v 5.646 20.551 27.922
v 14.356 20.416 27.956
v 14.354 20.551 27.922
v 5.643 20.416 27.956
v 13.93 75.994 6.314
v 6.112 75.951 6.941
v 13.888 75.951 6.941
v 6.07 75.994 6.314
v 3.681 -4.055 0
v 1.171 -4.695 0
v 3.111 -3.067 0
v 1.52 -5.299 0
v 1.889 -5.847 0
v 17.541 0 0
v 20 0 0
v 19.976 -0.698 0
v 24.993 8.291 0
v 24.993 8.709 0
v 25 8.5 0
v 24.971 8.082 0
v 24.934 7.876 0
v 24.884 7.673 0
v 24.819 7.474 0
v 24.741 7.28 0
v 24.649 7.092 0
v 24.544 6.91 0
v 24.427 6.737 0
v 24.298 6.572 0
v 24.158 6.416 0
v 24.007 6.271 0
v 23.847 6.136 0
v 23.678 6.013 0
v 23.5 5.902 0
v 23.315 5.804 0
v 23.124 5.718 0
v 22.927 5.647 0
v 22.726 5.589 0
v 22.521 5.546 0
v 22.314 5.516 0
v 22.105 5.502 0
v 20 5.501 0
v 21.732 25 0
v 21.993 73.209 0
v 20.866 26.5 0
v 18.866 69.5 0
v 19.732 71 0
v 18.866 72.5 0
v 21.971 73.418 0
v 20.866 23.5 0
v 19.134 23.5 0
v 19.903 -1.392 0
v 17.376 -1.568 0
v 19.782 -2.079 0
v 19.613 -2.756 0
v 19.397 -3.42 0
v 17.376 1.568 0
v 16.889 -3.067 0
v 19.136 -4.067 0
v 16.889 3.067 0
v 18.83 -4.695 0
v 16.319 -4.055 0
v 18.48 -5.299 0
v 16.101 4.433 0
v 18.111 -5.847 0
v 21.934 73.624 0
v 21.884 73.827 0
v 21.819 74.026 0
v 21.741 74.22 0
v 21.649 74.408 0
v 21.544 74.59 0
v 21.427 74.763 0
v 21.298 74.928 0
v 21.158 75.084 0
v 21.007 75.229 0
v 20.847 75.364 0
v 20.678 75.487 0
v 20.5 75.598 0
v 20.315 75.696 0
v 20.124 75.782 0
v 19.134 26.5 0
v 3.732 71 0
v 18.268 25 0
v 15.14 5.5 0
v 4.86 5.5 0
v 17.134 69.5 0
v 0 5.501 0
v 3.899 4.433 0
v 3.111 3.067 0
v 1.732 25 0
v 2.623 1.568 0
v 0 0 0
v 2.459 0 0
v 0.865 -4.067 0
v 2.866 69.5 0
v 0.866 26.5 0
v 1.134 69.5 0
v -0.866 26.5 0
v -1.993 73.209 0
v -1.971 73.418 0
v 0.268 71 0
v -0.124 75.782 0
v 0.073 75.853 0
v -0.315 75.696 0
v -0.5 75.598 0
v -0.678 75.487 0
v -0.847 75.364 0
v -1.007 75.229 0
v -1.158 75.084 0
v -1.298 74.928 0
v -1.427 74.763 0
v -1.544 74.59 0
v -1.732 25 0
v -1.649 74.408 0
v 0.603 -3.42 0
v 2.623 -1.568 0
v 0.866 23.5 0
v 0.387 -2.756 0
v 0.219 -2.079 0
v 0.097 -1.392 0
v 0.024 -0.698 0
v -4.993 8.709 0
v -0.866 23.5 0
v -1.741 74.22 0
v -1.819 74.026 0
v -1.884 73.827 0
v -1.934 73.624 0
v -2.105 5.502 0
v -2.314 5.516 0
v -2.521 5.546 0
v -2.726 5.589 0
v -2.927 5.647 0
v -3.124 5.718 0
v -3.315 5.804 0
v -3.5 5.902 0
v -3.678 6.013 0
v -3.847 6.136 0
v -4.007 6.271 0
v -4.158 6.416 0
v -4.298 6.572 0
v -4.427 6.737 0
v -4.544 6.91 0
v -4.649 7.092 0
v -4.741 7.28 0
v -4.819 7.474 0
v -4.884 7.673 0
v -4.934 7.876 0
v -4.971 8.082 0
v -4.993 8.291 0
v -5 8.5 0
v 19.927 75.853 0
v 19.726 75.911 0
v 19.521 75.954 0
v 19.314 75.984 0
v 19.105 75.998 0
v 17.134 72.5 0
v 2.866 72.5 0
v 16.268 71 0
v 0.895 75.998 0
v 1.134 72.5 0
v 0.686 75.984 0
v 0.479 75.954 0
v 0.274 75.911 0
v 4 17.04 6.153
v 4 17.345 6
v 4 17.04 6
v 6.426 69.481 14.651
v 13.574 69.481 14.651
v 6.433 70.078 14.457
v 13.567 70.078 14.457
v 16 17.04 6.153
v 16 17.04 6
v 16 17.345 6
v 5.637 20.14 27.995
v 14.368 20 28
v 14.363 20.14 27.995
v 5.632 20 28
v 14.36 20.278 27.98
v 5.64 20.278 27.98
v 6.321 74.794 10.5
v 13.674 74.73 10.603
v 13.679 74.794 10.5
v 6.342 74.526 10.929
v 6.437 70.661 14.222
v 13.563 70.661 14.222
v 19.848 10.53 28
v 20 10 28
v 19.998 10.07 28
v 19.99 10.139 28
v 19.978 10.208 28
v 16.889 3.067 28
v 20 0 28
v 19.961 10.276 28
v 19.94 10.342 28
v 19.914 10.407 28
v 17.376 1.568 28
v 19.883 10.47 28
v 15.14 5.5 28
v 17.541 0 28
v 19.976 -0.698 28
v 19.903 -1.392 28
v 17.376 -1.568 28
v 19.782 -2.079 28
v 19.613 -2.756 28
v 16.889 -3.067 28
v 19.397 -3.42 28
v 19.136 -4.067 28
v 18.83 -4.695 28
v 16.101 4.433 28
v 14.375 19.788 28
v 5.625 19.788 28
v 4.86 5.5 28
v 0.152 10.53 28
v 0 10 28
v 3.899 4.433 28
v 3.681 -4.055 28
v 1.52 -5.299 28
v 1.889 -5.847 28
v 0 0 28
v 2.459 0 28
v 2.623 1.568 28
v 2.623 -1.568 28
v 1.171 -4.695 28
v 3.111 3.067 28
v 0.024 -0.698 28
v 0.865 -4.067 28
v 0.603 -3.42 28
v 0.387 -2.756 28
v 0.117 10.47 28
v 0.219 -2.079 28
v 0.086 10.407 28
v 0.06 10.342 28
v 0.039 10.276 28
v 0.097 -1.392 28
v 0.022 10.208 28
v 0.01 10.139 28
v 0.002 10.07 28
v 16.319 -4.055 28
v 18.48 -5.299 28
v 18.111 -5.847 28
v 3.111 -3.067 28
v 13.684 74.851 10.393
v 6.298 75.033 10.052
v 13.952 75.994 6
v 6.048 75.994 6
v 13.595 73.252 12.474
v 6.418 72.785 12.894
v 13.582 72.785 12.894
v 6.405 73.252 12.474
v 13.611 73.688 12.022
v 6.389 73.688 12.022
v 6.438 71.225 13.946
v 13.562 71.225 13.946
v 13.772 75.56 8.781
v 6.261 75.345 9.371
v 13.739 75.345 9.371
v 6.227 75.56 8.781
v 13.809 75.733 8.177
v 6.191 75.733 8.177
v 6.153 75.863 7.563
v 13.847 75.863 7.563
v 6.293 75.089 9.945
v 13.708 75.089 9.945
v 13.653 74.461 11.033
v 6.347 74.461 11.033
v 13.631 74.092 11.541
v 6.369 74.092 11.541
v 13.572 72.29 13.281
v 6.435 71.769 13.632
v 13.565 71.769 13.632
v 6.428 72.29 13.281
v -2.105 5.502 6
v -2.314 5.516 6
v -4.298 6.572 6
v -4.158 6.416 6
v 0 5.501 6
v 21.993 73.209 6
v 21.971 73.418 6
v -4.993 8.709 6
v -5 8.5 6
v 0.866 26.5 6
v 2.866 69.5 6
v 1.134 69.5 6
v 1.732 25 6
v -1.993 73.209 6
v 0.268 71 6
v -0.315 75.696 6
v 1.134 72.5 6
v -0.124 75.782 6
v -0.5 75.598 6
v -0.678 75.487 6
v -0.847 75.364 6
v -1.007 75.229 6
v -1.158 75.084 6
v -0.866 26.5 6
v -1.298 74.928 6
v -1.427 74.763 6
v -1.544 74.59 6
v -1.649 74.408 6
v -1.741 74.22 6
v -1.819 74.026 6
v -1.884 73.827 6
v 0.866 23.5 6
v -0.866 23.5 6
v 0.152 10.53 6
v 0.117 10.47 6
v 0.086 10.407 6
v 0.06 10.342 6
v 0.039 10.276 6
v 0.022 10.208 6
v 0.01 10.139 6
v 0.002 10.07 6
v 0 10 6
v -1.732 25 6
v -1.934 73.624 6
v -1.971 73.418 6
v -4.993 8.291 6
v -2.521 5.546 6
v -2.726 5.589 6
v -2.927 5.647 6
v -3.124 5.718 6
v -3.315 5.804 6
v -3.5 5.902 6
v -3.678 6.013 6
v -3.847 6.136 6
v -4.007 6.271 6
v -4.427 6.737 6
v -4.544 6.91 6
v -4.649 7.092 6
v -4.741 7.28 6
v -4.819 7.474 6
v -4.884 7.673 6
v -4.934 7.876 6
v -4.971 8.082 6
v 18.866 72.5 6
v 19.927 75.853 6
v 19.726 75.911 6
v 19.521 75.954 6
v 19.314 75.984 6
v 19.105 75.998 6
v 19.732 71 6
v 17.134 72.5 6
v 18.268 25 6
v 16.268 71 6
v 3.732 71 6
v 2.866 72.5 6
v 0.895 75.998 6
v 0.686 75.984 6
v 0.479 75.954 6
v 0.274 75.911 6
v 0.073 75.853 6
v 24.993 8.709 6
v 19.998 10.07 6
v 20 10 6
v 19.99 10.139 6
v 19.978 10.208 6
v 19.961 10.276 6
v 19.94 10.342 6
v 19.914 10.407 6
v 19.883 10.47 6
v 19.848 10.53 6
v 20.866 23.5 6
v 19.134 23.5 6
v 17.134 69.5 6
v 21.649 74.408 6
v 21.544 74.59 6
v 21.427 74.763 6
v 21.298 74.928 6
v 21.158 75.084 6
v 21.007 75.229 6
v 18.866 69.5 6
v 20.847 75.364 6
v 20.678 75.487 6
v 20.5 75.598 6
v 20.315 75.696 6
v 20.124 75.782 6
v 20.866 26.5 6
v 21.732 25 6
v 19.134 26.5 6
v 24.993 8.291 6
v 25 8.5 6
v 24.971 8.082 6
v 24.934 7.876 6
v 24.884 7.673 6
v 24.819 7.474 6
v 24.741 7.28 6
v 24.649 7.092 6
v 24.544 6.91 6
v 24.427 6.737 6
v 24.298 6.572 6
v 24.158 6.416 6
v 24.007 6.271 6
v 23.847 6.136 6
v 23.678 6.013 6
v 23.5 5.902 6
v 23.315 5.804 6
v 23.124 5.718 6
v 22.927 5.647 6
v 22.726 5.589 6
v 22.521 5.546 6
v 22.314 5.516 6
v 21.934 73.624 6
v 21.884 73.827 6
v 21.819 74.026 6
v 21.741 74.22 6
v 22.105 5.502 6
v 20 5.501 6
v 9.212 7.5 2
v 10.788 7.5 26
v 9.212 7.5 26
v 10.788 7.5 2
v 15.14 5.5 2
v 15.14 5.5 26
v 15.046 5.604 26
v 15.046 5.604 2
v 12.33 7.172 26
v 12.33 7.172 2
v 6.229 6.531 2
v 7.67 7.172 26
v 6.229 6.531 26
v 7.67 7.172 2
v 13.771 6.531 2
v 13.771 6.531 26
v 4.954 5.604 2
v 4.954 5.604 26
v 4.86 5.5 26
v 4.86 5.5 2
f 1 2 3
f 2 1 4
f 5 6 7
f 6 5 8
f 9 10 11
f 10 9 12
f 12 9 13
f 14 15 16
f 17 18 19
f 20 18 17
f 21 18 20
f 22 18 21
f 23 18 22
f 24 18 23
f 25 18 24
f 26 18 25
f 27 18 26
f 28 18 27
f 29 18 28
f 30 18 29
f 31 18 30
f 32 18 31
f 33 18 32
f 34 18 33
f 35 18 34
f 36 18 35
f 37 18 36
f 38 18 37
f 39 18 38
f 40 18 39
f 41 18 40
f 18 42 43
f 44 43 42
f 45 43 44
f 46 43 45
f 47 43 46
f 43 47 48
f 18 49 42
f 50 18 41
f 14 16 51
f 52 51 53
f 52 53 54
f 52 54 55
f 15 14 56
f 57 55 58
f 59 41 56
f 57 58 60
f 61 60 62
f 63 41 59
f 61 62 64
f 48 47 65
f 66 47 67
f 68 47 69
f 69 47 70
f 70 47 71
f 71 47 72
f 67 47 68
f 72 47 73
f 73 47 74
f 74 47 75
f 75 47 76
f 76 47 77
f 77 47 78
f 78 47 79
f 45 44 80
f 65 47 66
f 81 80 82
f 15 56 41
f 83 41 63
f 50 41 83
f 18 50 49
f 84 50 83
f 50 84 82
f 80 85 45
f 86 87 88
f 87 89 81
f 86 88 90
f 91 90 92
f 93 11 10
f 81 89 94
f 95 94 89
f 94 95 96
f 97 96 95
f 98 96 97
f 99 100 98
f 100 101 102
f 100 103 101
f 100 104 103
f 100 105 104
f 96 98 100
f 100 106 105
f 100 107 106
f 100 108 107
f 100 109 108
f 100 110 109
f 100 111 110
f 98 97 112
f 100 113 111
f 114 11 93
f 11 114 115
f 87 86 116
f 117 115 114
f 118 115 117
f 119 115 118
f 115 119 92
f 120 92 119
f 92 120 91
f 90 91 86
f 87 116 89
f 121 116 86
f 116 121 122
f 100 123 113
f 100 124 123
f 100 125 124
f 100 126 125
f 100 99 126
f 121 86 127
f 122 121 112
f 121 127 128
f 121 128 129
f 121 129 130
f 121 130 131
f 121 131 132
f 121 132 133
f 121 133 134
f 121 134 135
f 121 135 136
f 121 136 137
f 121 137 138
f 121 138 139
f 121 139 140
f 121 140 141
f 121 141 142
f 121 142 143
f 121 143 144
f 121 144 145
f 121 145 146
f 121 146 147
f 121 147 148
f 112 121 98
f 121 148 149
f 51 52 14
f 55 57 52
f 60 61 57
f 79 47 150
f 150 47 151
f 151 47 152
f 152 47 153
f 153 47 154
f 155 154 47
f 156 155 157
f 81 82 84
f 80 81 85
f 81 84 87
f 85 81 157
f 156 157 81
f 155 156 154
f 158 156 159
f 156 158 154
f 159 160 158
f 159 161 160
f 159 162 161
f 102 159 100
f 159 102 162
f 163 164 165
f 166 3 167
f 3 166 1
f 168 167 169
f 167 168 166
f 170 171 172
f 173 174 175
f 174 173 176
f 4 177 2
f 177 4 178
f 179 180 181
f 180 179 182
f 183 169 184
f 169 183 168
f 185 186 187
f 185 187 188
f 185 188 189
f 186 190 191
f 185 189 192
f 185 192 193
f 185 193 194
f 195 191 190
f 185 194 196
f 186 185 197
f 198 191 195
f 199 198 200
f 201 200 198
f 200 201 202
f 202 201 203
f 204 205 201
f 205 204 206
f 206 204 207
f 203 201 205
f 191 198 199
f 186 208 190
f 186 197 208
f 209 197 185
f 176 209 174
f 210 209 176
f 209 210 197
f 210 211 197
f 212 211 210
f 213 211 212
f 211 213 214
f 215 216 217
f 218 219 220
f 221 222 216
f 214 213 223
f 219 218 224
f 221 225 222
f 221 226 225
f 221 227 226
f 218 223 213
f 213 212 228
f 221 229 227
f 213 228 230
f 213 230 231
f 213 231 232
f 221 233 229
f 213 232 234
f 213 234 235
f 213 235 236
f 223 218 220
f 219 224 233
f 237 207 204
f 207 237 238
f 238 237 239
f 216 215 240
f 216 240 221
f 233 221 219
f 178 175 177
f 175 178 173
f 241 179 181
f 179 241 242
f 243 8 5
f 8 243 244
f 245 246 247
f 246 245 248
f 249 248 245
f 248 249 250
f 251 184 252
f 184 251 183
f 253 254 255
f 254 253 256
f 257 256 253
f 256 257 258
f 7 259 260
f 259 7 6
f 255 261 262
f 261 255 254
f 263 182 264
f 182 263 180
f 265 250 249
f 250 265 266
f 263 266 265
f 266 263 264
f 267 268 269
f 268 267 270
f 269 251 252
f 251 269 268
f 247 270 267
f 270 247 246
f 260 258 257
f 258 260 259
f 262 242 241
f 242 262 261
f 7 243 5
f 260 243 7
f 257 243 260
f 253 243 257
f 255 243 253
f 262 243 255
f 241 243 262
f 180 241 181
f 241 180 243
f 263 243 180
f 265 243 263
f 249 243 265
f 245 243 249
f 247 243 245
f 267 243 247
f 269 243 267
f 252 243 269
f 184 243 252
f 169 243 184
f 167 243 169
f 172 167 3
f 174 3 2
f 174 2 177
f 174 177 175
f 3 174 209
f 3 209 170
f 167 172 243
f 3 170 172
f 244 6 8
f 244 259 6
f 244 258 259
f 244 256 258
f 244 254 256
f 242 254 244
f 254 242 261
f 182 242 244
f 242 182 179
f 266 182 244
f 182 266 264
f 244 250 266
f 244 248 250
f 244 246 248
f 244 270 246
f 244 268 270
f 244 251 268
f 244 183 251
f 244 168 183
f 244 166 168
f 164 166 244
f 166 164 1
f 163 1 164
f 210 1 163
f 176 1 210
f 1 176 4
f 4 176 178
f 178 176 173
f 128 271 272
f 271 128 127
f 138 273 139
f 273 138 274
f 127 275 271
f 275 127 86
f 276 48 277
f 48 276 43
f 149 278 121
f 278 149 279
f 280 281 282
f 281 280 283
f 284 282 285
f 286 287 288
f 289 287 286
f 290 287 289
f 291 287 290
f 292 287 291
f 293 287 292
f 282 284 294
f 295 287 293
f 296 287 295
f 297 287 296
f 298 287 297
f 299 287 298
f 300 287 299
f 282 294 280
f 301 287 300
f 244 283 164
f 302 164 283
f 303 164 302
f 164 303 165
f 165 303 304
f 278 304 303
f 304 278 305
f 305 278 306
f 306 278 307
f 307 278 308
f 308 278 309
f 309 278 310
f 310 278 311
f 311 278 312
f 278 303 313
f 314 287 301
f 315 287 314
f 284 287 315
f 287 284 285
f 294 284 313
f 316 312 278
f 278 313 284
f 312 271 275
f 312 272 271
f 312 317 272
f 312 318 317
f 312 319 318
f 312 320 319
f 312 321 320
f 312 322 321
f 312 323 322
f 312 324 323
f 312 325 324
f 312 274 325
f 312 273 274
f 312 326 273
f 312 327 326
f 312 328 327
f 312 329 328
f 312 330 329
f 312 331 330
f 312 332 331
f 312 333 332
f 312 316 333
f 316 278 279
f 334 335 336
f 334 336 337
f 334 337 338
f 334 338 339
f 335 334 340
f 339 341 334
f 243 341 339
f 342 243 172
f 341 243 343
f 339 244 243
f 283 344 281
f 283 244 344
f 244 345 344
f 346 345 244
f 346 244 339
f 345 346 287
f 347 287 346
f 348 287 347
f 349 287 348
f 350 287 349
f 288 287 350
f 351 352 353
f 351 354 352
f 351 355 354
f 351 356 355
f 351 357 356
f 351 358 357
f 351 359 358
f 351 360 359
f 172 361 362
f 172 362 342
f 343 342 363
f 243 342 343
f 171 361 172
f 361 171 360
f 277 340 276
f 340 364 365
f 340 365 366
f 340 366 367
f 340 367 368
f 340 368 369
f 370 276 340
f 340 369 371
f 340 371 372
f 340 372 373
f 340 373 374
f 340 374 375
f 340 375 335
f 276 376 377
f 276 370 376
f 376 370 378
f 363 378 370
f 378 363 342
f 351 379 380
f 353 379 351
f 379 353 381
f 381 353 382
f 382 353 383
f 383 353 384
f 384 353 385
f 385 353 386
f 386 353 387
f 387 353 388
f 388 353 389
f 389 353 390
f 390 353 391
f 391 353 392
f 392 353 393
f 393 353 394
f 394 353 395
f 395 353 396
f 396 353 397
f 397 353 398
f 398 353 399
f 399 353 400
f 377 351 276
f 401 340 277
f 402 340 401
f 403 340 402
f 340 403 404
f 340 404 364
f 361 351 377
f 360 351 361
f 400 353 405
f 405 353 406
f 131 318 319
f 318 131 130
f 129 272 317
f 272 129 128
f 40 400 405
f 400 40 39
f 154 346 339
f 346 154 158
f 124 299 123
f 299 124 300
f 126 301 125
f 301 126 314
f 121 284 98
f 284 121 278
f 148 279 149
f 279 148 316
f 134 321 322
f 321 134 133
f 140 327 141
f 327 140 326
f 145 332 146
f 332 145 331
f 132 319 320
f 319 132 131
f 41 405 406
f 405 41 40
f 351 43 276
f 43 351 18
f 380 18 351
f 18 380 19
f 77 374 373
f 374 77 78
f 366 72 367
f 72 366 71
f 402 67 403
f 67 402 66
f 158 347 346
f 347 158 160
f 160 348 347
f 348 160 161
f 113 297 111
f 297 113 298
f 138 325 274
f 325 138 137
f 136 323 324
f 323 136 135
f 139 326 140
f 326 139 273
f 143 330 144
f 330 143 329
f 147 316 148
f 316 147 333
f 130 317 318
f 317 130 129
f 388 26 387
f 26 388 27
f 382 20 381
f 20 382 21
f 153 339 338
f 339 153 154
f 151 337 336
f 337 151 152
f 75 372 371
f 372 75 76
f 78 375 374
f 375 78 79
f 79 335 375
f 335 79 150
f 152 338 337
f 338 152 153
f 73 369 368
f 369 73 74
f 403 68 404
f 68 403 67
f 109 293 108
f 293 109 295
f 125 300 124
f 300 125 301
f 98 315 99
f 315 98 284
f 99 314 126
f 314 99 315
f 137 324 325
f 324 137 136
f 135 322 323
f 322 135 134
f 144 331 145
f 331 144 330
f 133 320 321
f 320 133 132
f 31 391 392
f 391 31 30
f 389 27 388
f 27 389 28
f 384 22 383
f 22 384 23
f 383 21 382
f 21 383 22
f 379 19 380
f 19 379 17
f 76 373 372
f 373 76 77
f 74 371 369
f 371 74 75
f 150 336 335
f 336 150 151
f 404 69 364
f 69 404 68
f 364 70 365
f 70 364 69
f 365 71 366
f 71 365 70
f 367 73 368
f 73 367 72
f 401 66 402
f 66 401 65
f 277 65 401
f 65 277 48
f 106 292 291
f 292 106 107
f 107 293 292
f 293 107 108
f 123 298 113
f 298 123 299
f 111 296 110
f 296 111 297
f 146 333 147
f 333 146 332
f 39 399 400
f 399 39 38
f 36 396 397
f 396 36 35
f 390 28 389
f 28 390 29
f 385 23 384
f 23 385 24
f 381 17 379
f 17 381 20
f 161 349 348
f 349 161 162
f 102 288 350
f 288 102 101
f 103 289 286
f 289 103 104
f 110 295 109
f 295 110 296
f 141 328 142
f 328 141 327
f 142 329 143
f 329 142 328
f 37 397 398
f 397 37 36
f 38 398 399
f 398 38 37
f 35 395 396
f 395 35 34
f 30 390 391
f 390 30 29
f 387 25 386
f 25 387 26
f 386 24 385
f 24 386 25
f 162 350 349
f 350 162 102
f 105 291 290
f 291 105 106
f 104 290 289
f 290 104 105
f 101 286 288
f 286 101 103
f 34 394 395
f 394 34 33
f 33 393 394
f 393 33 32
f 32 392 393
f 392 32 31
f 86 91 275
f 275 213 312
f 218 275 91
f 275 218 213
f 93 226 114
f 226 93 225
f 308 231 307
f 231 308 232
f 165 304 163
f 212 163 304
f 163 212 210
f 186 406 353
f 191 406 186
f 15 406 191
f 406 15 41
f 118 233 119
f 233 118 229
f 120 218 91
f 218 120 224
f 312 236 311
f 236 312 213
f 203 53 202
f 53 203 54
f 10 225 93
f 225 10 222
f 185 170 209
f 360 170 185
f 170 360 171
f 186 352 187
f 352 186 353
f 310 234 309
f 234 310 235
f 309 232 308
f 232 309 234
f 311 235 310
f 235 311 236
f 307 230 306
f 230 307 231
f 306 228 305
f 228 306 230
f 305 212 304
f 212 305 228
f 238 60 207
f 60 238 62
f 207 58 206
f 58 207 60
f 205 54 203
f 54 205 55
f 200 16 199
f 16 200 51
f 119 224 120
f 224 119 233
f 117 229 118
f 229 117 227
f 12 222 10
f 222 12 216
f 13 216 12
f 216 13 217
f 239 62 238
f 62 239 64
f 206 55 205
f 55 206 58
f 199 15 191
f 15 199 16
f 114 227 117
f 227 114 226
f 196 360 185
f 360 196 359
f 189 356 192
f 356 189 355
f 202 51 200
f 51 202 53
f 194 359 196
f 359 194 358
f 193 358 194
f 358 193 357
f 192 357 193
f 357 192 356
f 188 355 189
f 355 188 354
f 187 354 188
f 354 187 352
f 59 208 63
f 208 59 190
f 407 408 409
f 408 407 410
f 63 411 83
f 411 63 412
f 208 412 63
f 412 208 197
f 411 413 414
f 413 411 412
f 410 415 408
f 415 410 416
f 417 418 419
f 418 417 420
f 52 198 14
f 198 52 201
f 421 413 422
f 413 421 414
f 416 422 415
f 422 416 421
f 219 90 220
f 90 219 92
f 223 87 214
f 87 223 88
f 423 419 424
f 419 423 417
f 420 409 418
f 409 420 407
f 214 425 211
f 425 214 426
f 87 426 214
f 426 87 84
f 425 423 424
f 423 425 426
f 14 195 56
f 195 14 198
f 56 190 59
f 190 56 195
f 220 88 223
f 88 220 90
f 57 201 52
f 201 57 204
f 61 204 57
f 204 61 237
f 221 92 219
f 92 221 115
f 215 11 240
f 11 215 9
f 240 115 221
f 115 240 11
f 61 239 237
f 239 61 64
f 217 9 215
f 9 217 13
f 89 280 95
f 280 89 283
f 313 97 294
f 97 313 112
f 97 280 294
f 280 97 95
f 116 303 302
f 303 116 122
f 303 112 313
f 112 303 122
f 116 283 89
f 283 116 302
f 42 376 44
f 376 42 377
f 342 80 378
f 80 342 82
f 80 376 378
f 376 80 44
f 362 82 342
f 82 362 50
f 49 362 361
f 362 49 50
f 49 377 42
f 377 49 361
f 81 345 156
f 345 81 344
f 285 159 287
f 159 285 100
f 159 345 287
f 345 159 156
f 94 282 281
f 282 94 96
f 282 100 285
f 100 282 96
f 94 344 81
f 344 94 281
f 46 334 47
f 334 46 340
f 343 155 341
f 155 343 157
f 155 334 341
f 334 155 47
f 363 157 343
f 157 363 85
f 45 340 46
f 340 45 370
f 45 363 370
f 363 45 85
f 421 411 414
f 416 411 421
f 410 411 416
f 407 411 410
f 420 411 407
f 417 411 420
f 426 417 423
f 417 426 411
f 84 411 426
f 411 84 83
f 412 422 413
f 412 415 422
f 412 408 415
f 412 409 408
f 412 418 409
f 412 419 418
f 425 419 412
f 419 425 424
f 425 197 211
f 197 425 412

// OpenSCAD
// file: polyhole.scad
// The Cylinder is dead! Long live the Cylinder!
// A module for a polyhole by radius, based on Nophead's work.

module polyhole(h, r, cent = false)
{
    n = max(round(4 * r), 3);
    cylinder(h = h, r = r / cos(180 / n), $fn = n, center = cent);
}
// main file
use<polyhole.scad>

BedNoLead();

module BedNoLead()
{
    union()
    {
        difference()
        {
            union()
            {
                hull()
                {
                    translate([5, 6.5, 3])
                        cube([2, 2, 6], center = true);
                    translate([-2, 8.5, 0])
                        cylinder(h = 6, r = 3, $fn = 90);
                    translate([1, 73, 0])
                        cylinder(h = 6, r = 3, $fn = 90);
                    translate([19, 73, 0])
                        cylinder(h = 6, r = 3, $fn = 90);
                    translate([22, 8.5, 0])
                        cylinder(h = 6, r = 3, $fn = 90);
                    translate([15, 6.5, 3])
                        cube([2, 2, 6], center = true);
                }
                difference()
                {
                    hull()
                    {
                        difference()
                        {
                            translate([10, 67, 6])
                                rotate([0, 90, 0])
                                    cylinder(h = 12, r = 9, $fn = 90, center = true);
                            translate([10, 67, -10])
                                cube([20, 20, 20], center = true);
                        }
                        translate([10, 20, 26])
                            rotate([0, 90, 0])
                                cylinder(h = 12, r = 2, $fn = 90, center = true);
                        translate([10, 2, 26])
                            rotate([0, 90, 0])
                                cylinder(h = 12, r = 2, $fn = 90, center = true);
                        translate([10, 2, 6])
                            rotate([0, 90, 0])
                                cylinder(h = 12, r = 2, $fn = 90, center = true);
                    }
                    translate([19, 45, 21])
                        rotate([0, -4, 2])
                            cube([10, 90, 30], center = true);
                    translate([1, 45, 21])
                        rotate([0, 4, -2])
                            cube([10, 90, 30], center = true);
                }
                hull()
                {
                    translate([10, 0, 0])
                        cylinder(h = 28, r = 10, $fn = 90);
                    translate([1, 10, 0])
                        cylinder(h = 28, r = 1, $fn = 90);
                    translate([19, 10, 0])
                        cylinder(h = 28, r = 1, $fn = 90);
                    translate([10, 19, 14])
                        cube([8.5, 2, 28], center = true);
                }
            }
            translate([10, 0, 0])
                polyhole(28, 7.5);
            translate([10, -14, 14])
                rotate([0, 0, 45])
                    cube([23, 23, 28], center = true);
            translate([-0.25, 17, 0])
                polyhole(6, 1.5);
            translate([20.25, 17, 0])
                polyhole(6, 1.5);
            translate([2, 71, 0])
                polyhole(6, 1.5);
            translate([18, 71, 0])
                polyhole(6, 1.5);
        }
        translate([10, 9.5, 1])
            cube([15, 8, 2], center = true);
        translate([10, 9.5, 27])
            cube([15, 8, 2], center = true);
    }
}
